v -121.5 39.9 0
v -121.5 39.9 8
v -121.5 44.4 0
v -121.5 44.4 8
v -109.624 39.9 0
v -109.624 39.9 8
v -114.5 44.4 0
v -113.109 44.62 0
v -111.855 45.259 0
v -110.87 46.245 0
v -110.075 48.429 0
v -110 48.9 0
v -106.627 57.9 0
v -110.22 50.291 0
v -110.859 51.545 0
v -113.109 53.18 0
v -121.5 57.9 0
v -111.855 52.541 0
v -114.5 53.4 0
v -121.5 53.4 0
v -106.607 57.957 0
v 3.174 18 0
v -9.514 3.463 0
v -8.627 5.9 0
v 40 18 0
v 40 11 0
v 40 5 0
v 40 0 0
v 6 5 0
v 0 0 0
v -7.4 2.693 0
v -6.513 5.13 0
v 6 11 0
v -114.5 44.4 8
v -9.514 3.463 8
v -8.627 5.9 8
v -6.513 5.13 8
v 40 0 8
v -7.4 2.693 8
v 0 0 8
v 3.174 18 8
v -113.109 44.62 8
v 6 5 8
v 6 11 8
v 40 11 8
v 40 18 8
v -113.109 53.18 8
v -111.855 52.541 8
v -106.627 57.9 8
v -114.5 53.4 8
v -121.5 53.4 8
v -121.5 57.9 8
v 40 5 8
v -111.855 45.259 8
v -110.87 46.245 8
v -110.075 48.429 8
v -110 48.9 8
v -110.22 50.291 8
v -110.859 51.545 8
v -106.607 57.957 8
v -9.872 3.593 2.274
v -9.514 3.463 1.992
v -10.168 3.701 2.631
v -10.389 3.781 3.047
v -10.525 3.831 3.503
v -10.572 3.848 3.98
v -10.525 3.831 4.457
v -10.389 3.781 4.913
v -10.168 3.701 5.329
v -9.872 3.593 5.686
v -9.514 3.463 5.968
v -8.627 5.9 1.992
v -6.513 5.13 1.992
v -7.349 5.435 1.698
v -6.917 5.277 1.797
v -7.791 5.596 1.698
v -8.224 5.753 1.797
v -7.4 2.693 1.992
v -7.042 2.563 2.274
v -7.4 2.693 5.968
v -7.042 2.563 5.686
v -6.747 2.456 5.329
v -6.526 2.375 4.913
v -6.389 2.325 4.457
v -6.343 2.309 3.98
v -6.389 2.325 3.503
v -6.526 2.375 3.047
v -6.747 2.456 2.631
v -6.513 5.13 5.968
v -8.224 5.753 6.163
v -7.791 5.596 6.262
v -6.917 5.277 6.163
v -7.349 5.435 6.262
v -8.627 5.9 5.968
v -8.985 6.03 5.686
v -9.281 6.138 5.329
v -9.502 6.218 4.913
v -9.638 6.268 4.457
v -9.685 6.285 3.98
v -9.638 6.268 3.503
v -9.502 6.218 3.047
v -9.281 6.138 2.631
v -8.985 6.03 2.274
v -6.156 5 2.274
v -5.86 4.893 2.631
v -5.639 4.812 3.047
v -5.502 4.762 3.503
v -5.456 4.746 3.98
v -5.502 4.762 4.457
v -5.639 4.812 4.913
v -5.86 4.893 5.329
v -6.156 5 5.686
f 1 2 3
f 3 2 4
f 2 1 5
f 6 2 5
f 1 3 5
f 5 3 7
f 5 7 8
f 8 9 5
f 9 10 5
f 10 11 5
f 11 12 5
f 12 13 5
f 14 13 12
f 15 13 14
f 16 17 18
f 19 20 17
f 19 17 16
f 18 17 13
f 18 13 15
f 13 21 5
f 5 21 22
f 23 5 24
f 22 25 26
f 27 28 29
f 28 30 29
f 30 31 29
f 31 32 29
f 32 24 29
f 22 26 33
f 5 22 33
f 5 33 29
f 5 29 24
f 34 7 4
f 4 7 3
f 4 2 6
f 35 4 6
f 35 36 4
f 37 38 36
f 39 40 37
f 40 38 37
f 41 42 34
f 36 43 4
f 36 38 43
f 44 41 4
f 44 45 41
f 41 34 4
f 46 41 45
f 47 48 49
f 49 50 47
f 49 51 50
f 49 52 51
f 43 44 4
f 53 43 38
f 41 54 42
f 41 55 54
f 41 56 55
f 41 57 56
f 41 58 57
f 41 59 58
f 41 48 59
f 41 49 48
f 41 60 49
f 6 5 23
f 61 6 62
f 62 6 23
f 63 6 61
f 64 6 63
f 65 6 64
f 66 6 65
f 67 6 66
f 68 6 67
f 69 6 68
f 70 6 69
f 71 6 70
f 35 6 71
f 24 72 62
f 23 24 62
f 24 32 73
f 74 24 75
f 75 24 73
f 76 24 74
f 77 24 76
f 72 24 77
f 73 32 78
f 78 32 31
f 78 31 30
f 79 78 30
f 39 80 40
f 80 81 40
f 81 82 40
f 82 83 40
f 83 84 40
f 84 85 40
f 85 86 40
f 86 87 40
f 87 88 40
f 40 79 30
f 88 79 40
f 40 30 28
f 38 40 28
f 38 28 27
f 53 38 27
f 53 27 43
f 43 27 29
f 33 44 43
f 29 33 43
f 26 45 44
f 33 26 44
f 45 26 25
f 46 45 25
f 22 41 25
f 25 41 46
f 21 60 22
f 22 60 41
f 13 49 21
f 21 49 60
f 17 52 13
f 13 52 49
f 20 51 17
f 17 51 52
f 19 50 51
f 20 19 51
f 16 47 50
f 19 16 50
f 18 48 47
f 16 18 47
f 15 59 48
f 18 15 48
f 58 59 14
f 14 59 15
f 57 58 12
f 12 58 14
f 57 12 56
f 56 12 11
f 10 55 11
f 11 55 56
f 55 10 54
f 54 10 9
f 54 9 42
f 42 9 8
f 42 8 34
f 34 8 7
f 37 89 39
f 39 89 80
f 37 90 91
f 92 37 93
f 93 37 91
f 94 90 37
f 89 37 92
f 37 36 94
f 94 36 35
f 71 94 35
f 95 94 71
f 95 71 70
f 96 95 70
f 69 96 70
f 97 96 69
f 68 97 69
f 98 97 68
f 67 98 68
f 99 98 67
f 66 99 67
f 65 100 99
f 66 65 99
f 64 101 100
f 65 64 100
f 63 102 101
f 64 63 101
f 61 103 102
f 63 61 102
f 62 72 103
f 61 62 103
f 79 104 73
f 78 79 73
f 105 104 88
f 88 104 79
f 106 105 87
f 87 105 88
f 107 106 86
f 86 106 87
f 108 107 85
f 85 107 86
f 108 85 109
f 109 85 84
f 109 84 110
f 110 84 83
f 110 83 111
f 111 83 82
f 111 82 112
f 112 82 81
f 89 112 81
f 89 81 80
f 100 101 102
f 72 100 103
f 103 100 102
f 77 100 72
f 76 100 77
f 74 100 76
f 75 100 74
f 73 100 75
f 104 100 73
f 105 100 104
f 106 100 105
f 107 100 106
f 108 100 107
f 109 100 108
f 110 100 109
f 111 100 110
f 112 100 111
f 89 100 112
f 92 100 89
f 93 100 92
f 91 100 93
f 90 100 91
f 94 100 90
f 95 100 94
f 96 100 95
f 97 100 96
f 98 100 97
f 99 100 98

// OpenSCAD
// file: Spool_mount_for_i3_config.scad
//
//
//Variables

width=8;
length_frame_mount=40;
length_strip=120;
length_axis_support=15;
height=18;

//Liston de enlace
height_clamp=width/3;

//enganche
module anchor(){
	translate([height/2,0,width/2]) rotate([90,0,0]) 
	union(){
		cylinder(r=height/8, h=height_clamp, $fn=30);
		translate([0,0,height_clamp/2])
			cube([height/8,width,height_clamp],center=true);
	}
}
// main file
include<Spool_mount_for_i3_config.scad>

//sujeccion al marco
module frame_mount(){
	difference()
	{
		cube([length_frame_mount,height,width]);
		translate([6,5,0]) 
			cube([length_frame_mount-6,6,width]);
	}
}

//liston para el soporte
module strip_support(){
		rotate([0,0,160])
			difference(){
				translate([0,-height,0]) 
					cube([length_strip,height,width]);
				translate([0,0.1,-0.1])
					scale([1,1.01,1.02]) anchor();
			}
}

//enganche para el rollo
module axis_support(){
	translate([-121.5,39.9,0]) difference() {
		cube([length_axis_support,height,width]);
		union(){
			translate([0,4.5,0])
				cube([length_axis_support-8	,height/2,width]);
			translate([length_axis_support-8,height/2,0])
				cylinder(r=4.5, h=width, $fn=20);
		}
	}
}

union(){
	frame_mount();
	strip_support();
	axis_support();
}
